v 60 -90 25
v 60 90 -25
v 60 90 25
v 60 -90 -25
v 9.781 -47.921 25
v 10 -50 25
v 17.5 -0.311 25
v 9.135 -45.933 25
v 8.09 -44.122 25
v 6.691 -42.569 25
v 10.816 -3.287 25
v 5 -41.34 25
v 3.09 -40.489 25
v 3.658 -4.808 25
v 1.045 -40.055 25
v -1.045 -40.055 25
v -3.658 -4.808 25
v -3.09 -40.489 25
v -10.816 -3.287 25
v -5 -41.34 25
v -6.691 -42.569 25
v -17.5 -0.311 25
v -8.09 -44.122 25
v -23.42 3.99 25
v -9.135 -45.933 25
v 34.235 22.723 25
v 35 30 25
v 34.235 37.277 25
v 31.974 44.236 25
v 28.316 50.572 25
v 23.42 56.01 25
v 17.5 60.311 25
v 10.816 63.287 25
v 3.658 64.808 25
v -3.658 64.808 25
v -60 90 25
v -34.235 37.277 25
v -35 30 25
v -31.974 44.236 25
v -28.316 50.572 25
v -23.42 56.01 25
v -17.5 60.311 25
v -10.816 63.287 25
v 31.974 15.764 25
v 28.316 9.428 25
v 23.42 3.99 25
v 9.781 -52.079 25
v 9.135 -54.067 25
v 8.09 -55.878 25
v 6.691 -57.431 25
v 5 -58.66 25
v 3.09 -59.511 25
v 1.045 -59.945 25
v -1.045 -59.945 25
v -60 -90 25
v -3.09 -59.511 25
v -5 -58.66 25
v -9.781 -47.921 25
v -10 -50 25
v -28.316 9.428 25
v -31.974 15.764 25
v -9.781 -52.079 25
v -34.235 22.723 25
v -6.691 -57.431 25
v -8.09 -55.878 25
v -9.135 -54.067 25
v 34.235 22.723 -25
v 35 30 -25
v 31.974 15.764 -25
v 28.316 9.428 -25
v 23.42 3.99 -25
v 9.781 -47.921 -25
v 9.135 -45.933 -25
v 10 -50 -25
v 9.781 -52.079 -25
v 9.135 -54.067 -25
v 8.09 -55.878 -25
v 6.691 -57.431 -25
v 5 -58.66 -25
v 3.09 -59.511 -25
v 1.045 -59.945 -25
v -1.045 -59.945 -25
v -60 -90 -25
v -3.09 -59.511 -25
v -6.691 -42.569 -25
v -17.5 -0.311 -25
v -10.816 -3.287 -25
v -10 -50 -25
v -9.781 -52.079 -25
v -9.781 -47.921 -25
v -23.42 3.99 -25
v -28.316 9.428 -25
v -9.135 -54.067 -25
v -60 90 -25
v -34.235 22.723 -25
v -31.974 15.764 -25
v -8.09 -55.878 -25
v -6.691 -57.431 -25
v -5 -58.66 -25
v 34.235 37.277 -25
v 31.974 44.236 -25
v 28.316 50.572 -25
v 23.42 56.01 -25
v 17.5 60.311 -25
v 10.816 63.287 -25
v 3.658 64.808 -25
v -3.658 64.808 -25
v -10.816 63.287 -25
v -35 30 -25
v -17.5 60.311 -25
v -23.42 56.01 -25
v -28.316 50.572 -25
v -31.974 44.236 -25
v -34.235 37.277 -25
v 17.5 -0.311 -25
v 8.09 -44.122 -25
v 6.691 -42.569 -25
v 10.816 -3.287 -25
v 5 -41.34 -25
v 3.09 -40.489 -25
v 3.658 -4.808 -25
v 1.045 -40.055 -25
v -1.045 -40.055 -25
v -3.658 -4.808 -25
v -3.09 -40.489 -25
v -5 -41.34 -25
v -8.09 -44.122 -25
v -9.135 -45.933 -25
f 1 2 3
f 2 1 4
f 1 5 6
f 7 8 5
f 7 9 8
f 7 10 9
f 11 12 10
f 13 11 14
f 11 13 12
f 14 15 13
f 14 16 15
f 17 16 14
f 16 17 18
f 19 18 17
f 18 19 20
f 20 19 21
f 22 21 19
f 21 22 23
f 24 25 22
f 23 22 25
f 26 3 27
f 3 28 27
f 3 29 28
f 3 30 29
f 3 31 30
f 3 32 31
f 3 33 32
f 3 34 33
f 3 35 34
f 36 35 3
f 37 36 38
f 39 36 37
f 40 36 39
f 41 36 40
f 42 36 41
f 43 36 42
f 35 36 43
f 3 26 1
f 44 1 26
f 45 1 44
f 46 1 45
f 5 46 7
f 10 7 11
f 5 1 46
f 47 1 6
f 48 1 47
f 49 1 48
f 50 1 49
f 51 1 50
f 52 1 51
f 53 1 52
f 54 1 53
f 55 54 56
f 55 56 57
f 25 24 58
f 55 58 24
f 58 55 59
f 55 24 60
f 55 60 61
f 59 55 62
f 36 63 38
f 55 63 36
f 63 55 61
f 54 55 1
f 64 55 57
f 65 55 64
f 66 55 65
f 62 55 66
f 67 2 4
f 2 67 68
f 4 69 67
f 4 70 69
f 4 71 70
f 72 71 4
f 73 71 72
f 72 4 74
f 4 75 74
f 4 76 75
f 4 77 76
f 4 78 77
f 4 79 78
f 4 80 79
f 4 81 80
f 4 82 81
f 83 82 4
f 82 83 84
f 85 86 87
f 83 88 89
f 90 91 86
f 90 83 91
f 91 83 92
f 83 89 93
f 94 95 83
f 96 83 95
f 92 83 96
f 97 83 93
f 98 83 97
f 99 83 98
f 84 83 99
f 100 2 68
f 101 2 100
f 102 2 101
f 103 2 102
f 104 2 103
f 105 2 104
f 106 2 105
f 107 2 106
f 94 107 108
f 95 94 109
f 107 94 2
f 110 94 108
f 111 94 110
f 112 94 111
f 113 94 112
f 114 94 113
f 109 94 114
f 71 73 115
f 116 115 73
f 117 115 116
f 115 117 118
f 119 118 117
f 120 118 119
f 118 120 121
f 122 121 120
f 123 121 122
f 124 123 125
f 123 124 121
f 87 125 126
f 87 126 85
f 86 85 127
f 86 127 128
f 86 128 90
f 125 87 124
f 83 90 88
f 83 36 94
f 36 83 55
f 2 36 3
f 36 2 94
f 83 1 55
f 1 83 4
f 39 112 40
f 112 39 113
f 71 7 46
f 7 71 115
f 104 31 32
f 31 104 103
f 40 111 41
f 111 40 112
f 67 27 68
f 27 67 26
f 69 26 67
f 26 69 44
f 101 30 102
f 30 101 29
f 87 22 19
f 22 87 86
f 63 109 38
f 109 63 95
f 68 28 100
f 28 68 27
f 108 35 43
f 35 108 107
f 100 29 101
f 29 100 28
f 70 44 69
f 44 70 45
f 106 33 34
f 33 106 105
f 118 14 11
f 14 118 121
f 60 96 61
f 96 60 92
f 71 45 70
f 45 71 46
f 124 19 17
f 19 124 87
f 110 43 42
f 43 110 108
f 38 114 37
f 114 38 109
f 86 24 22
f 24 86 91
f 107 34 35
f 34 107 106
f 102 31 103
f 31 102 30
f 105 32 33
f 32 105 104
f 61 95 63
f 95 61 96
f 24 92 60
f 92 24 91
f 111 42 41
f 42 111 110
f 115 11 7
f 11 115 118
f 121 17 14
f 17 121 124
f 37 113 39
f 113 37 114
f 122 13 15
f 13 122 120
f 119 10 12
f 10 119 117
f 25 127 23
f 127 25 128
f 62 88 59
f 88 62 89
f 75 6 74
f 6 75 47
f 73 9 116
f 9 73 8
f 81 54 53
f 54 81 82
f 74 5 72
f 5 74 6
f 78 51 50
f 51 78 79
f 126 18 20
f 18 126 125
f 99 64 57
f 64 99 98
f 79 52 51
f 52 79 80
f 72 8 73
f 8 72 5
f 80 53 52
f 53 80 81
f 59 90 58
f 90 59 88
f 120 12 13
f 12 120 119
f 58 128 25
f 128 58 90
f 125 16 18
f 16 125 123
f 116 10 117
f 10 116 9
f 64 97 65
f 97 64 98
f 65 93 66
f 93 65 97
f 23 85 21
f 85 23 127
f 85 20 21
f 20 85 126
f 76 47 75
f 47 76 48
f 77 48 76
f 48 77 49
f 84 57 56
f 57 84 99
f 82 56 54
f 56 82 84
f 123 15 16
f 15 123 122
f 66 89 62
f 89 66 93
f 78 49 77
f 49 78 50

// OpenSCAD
echo(version=version());

inner_radius = 180/2;
outer_radius = 320/2;
holes_radius = 20;
holes_pos = (outer_radius+inner_radius)/2;
height = 50;

difference() {
    cube([120, 180, 50], center = true);
    
    translate([0, 30, 0])
    cylinder(h=60, r=35, center=true);
    
    translate([0, -90+40, 0])
    cylinder(h=60, r=10, center=true);
}
